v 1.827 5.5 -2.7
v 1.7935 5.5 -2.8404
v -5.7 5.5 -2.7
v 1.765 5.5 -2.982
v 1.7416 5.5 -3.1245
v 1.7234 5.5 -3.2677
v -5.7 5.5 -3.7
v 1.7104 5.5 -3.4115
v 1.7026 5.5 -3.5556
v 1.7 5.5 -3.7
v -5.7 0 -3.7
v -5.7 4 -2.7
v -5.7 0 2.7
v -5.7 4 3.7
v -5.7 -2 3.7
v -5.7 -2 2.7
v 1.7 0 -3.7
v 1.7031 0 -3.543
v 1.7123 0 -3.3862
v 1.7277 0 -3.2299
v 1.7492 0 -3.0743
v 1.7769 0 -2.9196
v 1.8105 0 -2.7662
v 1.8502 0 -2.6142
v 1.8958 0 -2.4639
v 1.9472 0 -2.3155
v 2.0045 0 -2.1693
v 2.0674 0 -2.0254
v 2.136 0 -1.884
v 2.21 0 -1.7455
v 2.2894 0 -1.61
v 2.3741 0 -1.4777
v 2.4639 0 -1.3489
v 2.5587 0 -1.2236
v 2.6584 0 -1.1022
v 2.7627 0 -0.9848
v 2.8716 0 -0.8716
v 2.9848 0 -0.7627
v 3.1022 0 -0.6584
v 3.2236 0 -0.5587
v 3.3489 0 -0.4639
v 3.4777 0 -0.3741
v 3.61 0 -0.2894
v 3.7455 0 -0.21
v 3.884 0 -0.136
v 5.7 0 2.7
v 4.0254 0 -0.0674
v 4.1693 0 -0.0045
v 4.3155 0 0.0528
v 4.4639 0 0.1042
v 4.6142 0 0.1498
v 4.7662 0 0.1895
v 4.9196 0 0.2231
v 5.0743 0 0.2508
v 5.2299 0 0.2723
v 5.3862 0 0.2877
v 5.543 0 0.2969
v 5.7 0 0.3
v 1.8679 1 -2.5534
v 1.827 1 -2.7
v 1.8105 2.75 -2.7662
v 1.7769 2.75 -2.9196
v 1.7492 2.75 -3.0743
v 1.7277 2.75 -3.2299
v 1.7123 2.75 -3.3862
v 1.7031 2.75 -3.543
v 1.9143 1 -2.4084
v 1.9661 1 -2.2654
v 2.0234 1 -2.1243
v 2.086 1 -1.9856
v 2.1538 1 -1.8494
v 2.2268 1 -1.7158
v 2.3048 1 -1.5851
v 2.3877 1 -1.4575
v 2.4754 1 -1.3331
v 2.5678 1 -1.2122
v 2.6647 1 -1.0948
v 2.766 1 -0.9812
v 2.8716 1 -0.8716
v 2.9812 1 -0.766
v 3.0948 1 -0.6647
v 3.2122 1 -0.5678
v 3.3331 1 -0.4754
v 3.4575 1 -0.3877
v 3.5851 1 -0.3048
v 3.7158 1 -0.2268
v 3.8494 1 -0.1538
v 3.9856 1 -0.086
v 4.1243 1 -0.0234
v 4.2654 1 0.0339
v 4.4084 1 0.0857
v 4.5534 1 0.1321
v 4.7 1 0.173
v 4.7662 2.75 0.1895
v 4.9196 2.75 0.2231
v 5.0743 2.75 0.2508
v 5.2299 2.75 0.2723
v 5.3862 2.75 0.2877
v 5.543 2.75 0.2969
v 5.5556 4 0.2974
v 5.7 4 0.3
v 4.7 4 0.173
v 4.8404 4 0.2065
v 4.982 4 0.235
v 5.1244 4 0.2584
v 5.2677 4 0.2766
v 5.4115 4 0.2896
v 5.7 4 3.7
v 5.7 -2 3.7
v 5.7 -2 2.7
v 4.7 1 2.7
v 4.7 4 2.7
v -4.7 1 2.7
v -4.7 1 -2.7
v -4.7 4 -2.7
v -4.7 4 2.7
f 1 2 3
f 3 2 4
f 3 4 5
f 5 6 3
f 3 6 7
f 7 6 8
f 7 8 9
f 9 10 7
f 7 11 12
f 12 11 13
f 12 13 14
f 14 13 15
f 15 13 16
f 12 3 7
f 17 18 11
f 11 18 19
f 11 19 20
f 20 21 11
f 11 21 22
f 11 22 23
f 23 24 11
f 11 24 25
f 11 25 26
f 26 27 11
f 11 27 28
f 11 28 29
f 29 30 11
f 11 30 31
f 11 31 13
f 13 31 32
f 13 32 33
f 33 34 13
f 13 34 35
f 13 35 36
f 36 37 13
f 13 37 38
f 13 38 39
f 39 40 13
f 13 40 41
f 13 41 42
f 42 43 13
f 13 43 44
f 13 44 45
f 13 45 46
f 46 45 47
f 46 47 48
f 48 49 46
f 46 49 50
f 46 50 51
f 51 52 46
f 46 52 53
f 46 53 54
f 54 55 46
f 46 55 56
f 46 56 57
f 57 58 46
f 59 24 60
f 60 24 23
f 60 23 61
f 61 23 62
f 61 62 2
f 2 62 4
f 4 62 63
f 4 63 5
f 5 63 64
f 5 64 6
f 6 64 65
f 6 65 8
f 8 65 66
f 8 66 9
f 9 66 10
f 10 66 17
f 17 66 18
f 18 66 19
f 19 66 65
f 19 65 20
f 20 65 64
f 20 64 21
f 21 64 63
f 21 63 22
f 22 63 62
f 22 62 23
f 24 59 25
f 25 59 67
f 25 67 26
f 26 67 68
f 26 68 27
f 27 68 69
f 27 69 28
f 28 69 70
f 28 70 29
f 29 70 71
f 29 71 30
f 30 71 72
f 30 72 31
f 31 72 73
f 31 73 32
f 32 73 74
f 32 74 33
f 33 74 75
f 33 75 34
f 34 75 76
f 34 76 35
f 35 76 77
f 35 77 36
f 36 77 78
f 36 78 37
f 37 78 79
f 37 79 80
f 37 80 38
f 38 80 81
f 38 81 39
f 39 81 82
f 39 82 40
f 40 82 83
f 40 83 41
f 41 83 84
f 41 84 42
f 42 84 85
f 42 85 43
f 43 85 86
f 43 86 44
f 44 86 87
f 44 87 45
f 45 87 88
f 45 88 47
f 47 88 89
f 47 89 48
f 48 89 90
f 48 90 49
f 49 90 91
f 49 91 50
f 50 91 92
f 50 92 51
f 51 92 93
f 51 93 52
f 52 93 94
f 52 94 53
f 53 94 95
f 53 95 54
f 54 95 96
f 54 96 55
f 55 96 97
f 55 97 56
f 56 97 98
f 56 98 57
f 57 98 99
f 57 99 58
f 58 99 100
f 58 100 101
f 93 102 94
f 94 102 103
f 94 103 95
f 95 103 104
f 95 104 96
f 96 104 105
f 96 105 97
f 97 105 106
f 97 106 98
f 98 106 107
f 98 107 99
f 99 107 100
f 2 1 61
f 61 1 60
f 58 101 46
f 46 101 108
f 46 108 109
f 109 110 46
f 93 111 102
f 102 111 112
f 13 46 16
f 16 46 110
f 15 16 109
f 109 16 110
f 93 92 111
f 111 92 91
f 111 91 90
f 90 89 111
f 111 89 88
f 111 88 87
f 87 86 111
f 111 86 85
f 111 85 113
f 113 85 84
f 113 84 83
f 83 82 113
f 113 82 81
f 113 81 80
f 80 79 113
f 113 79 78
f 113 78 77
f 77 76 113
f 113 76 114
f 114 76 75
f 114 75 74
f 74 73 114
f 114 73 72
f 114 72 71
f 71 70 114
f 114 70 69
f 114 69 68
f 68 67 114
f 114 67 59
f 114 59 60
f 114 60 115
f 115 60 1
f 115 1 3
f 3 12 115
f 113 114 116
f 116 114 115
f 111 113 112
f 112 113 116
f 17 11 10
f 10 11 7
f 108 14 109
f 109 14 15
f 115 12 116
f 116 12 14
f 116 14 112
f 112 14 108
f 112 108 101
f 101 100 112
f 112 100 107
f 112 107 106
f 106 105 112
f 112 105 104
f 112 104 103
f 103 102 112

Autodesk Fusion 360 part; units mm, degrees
sketch "Sketch1" plane through (0, 0, 0) normal (0, 1, 0) x (1, 0, 0)
  line L0 (-4.7, 2.7) -> (4.7, 2.7)
  line L1 (4.7, 2.7) -> (4.7, -2.7)
  line L2 (4.7, -2.7) -> (-4.7, -2.7)
  line L3 (-4.7, -2.7) -> (-4.7, 2.7)
  line L4 (-4.7, 2.7) -> (4.7, -2.7) construction
  line L5 (4.7, 2.7) -> (-4.7, -2.7) construction
  line L6 (-5.7, 3.7) -> (5.7, 3.7)
  line L7 (5.7, 3.7) -> (5.7, -3.7)
  line L8 (5.7, -3.7) -> (-5.7, -3.7)
  line L9 (-5.7, -3.7) -> (-5.7, 3.7)
  circle A0 centre (5.7, 3.7) radius 4
  line L10 (-4.7, 2.7) -> (-5.7, 2.7)
  dimension "d1" = 9.4
  dimension "d2" = 5.4
  dimension "d3" = -1
  dimension "d12" = 8
extrude "Extrude1" add sketch "Sketch1" along normal blind 4 contours L0 L6 L9 A0 L10 | L1 L2 L3 L7 L8 L9 A0 L10 | L0 L1 L6 L7 A0
extrude "Extrude2" add sketch "Sketch1" along normal blind 1 contours L0 L1 L2 L3 A0 | L0 L1 A0
sketch "Sketch2" plane through (0, 0, 0) normal (0, 1, 0) x (1, 0, 0)
  line L0 (-5.7, -3.7) -> (5.7, -3.7)
  line L1 (5.7, -3.7) -> (5.7, -2.7)
  line L2 (5.7, -2.7) -> (-5.7, -2.7)
  line L3 (-5.7, -2.7) -> (-5.7, -3.7)
  point P0 (-5.7, -3.7)
  dimension "d8" = 1
  dimension "d11" = 11.4
extrude "Extrude3" add sketch "Sketch2" against normal blind 2
extrude "Extrude4" cut sketch "Sketch1" along normal blind 5 contours L0 L1 L6 L7 A0 | L0 L1 A0
extrude "Extrude5" add sketch "Sketch1" along normal blind 5.5 contours L0 L6 L9 A0 L10
